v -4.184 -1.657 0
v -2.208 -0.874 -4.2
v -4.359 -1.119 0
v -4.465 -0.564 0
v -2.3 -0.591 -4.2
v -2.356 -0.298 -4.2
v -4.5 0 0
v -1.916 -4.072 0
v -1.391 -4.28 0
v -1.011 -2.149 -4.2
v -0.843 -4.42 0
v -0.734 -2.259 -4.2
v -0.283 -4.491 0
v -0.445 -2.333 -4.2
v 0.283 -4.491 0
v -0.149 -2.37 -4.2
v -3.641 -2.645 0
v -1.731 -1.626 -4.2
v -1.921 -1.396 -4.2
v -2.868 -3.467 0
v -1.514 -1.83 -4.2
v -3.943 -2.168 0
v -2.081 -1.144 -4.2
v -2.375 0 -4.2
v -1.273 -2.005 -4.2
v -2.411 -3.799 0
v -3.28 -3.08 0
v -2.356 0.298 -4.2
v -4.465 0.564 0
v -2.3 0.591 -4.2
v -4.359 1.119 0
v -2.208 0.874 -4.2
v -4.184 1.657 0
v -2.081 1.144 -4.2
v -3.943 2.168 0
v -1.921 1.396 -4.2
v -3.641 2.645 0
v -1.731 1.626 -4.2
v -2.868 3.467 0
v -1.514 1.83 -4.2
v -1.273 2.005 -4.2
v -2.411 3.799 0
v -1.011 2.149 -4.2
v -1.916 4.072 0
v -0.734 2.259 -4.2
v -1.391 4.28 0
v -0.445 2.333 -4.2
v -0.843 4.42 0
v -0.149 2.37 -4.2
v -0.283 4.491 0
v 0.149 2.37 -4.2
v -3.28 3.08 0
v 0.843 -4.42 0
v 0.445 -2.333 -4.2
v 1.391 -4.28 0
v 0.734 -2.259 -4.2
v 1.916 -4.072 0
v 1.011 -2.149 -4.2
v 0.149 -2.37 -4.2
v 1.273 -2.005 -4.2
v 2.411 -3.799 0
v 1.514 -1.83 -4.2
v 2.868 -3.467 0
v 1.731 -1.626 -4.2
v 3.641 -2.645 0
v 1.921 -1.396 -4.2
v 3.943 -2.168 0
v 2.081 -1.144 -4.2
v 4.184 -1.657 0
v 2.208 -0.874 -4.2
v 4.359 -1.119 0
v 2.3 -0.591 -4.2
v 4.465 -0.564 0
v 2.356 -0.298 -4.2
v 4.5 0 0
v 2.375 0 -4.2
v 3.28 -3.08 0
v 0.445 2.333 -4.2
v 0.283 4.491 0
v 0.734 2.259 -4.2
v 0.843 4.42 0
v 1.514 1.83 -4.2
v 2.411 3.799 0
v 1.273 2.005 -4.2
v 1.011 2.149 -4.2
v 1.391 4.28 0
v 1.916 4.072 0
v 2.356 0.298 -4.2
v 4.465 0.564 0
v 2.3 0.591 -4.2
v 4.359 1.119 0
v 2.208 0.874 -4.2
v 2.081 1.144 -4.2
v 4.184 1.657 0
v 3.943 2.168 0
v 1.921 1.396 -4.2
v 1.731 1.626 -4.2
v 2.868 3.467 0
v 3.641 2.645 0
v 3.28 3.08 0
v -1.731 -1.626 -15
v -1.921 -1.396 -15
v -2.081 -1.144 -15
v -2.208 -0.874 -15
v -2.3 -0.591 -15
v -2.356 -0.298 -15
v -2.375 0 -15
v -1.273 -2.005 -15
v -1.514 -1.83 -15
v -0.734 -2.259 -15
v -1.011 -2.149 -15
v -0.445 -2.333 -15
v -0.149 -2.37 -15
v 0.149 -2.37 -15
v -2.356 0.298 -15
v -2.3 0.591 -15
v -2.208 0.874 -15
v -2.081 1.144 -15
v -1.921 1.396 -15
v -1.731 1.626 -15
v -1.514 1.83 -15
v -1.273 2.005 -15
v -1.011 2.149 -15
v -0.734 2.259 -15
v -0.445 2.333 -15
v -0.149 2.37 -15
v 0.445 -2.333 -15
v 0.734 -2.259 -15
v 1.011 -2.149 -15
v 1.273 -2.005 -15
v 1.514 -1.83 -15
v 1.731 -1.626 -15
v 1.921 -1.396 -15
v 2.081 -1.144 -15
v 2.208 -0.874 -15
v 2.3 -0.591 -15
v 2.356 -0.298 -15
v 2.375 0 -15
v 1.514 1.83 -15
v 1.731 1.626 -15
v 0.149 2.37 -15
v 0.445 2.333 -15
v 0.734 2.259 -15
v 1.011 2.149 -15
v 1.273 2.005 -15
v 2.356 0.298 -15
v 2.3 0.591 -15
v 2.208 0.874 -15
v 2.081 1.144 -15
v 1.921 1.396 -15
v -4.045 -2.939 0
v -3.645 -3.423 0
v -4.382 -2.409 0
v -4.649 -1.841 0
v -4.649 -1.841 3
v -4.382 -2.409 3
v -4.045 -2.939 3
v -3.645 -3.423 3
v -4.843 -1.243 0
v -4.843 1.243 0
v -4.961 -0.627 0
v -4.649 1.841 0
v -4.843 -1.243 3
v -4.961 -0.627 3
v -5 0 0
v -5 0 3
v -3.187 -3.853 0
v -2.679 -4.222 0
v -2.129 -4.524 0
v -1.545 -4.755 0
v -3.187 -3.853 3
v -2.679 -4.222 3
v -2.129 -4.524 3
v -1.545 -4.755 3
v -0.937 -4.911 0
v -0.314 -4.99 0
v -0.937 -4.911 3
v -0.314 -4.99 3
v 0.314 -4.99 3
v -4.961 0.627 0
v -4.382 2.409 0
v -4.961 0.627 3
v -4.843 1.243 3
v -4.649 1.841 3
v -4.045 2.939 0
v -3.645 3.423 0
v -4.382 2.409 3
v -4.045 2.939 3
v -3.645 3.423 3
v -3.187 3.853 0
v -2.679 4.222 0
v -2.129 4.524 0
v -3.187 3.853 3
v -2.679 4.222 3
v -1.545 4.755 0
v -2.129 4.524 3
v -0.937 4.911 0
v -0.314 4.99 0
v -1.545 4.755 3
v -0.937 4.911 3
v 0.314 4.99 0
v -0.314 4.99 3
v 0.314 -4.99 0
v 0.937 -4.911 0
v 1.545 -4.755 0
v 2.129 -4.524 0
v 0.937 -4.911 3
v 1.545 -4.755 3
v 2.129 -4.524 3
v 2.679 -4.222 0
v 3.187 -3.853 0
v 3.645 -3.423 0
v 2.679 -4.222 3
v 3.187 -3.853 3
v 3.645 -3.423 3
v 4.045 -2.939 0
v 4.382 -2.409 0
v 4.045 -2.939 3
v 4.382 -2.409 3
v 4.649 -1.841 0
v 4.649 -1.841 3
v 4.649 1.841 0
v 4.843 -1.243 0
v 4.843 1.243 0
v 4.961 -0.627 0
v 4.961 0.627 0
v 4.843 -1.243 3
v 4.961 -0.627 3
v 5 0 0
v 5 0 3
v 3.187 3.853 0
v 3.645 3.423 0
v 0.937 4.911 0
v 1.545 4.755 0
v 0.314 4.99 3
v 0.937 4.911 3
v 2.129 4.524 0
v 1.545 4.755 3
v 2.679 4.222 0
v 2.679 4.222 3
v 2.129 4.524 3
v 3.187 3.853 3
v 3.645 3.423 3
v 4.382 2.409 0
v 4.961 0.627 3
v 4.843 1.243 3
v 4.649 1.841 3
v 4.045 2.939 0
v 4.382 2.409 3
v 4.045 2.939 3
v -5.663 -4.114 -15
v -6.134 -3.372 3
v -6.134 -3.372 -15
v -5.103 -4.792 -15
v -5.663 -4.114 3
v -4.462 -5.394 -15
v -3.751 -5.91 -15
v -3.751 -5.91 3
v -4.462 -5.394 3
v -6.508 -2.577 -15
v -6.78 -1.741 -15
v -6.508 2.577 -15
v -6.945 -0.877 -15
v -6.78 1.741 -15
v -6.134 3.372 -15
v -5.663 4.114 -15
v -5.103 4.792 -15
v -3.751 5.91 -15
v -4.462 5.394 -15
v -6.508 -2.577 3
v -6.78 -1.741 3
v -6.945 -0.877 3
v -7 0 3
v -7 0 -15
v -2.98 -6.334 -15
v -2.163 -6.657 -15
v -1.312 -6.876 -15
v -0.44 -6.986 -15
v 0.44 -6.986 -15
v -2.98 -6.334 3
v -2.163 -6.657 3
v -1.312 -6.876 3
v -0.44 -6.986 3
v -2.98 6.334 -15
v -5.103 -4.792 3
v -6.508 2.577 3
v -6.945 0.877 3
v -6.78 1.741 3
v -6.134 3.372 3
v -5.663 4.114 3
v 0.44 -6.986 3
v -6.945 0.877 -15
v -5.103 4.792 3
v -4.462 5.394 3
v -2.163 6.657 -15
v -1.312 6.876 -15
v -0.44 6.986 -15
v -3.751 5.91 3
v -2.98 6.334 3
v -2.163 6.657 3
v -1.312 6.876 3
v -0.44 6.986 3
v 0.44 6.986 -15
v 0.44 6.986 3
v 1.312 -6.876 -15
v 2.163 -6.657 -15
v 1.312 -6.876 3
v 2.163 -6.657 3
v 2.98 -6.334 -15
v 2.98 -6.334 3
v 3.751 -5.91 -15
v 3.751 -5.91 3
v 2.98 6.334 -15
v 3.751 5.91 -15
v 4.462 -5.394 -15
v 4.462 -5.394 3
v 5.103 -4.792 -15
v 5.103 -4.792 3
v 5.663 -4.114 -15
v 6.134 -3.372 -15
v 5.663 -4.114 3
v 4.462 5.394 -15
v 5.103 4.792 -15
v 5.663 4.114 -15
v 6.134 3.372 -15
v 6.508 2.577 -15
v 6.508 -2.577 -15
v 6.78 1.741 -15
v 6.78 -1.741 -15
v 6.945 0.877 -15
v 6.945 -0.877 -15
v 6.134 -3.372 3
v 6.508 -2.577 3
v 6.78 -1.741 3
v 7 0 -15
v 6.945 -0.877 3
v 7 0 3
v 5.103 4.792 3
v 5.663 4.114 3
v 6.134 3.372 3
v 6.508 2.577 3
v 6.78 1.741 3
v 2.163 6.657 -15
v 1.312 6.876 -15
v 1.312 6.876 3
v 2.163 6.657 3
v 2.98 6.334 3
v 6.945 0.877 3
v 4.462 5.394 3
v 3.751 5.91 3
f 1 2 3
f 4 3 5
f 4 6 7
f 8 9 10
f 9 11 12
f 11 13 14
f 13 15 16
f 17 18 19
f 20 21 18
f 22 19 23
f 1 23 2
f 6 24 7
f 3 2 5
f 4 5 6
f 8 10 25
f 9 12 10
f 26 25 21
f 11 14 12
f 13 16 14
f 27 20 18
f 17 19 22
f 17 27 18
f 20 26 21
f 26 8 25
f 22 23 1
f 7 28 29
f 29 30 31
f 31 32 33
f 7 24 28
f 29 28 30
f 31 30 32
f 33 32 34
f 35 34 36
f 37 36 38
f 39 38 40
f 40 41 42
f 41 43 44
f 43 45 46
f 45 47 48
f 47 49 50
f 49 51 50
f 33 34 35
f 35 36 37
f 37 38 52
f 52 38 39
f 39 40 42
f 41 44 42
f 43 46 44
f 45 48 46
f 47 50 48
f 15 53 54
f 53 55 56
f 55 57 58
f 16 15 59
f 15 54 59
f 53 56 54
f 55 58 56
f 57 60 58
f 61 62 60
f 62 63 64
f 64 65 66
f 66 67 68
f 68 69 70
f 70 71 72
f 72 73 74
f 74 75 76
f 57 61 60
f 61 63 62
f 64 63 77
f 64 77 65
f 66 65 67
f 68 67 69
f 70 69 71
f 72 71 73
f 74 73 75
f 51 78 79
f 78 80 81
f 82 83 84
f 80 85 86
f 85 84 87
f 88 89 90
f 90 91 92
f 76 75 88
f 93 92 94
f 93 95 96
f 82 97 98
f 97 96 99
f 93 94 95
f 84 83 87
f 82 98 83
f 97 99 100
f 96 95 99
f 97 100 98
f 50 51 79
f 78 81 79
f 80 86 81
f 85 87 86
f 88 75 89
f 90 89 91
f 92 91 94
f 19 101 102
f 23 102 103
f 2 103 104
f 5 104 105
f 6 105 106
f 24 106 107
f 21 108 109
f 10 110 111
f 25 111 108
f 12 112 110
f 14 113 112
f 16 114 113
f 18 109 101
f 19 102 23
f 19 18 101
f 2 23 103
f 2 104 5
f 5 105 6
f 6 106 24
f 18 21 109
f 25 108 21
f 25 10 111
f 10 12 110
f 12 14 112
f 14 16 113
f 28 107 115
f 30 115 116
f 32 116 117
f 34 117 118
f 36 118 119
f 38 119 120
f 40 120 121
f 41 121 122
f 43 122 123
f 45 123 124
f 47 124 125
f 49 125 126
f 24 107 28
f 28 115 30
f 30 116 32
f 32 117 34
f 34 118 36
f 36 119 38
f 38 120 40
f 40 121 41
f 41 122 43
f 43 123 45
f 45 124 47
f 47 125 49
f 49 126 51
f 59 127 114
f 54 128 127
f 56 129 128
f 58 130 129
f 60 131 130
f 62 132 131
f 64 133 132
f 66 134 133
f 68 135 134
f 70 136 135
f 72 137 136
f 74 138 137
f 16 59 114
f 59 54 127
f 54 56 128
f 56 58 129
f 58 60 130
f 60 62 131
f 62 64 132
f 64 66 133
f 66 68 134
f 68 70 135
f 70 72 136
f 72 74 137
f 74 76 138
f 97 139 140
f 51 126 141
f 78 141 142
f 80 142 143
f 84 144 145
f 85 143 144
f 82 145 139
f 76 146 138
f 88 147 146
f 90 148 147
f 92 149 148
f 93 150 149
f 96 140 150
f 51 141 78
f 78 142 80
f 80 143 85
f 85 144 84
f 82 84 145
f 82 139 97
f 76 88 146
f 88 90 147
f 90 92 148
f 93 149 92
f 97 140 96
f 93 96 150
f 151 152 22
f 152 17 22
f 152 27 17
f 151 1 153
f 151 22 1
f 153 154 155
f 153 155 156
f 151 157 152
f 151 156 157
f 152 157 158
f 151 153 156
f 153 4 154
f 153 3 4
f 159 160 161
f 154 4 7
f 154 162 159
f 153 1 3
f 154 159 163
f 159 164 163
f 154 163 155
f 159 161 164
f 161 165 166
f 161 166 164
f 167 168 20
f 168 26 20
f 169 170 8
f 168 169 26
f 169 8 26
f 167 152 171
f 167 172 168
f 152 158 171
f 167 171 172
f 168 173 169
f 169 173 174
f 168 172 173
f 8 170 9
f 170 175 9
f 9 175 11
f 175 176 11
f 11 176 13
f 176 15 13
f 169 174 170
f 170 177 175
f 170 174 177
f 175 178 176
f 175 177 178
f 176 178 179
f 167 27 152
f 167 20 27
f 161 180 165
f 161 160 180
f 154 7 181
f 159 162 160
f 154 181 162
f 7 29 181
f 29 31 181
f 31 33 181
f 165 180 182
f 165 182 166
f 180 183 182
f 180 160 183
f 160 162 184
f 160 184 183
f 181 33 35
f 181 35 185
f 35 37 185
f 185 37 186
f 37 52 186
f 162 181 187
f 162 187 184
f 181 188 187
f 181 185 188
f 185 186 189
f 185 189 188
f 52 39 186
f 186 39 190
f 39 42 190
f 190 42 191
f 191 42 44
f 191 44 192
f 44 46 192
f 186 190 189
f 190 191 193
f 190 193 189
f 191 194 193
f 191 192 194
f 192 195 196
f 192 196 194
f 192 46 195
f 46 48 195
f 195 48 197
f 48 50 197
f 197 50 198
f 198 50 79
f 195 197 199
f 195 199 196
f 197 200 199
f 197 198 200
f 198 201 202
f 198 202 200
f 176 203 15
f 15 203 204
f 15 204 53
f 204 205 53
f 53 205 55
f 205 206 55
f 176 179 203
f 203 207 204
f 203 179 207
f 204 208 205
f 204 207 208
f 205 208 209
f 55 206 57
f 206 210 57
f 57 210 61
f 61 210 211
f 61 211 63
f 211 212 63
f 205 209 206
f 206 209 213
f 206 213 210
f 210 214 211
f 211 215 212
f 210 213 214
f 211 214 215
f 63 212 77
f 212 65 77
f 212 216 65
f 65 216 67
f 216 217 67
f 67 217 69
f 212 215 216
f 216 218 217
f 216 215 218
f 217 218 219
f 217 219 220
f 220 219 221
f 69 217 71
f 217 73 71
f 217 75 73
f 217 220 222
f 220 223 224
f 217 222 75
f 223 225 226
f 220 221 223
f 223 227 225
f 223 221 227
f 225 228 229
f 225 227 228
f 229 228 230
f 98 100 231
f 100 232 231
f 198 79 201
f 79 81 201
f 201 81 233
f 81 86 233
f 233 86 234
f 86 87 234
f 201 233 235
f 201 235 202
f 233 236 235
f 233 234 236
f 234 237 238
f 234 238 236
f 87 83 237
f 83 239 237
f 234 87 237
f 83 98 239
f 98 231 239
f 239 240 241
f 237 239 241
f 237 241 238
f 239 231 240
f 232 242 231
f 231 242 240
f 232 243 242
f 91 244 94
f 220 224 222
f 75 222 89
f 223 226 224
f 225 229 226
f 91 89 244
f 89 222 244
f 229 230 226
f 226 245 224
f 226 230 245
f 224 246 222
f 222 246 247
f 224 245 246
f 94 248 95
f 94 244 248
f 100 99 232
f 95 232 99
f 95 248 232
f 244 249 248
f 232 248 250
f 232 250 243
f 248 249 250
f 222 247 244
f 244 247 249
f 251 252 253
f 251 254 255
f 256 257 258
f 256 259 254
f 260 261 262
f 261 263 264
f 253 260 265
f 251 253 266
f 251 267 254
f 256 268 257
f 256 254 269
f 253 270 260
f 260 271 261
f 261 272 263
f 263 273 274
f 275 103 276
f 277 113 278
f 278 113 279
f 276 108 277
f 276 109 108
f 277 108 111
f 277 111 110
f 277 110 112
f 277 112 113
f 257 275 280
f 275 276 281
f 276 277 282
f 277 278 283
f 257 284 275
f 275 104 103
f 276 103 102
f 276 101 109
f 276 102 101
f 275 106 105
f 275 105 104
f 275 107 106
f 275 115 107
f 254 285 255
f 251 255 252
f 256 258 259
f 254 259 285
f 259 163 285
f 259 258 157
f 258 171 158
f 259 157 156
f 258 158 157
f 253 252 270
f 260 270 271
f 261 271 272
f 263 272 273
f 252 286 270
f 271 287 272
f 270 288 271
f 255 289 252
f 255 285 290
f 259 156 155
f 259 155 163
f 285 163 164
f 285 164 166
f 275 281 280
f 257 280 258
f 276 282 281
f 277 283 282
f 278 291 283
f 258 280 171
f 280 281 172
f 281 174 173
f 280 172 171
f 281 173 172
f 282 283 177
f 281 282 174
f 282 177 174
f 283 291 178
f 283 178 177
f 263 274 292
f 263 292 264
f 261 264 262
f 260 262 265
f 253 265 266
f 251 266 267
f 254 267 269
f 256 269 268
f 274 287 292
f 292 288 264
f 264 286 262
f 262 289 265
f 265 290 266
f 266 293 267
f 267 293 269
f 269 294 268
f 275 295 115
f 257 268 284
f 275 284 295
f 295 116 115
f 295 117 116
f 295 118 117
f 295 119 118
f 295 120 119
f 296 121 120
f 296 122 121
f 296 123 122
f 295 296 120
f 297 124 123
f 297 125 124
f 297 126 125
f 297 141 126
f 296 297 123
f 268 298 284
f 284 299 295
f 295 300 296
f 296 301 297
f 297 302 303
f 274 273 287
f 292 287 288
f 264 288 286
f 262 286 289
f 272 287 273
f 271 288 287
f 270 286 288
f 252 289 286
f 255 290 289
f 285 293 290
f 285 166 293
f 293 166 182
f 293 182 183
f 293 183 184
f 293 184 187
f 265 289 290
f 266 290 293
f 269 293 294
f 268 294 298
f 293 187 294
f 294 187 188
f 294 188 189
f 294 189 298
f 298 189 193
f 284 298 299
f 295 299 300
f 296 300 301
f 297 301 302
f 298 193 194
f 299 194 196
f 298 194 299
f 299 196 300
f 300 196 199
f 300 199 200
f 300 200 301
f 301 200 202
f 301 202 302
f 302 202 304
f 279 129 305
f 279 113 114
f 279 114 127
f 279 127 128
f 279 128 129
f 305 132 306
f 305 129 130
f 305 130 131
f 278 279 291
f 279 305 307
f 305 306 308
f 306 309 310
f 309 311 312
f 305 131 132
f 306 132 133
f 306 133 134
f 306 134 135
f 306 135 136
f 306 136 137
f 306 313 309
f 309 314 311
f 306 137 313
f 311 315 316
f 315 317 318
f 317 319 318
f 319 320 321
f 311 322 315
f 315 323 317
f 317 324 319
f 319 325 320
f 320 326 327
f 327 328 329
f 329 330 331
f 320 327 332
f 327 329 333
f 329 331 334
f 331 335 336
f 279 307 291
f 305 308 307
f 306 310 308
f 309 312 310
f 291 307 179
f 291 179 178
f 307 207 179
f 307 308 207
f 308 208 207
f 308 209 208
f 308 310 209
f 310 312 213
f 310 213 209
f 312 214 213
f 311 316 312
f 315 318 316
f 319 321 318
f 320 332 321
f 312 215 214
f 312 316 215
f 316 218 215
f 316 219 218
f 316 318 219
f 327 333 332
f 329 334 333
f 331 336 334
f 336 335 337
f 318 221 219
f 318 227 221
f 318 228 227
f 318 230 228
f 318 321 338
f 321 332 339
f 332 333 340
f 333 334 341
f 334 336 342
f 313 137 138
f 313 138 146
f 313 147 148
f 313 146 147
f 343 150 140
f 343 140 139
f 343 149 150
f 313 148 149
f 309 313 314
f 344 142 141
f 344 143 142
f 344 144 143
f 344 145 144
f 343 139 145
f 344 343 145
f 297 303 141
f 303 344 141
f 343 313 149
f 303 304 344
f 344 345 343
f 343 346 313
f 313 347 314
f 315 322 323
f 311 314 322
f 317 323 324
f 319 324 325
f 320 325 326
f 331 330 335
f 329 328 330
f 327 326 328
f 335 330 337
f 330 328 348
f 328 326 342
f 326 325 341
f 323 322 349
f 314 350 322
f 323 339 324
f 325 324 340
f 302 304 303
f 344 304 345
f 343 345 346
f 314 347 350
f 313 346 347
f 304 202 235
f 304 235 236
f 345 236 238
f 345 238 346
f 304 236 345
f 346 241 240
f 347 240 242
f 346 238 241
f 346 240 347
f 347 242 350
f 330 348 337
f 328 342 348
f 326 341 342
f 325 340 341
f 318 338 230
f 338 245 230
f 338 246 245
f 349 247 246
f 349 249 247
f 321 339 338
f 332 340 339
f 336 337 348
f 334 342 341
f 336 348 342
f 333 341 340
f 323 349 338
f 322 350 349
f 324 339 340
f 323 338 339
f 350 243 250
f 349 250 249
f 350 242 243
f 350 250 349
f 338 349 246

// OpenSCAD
$fn = 50;


difference() {
	union() {
		translate(v = [0, 0, -15.0000000000]) {
			cylinder(h = 18, r = 7.0000000000);
		}
	}
	union() {
		translate(v = [0, 0, 0]) {
			rotate(a = [0, 0, 0]) {
				difference() {
					union() {
						translate(v = [0, 0, -18.0000000000]) {
							cylinder(h = 18, r = 2.2500000000);
						}
						translate(v = [0, 0, -4.2000000000]) {
							cylinder(h = 4.2000000000, r1 = 2.3750000000, r2 = 4.5000000000);
						}
						translate(v = [0, 0, -18.0000000000]) {
							cylinder(h = 18, r = 2.3750000000);
						}
						translate(v = [0, 0, -18.0000000000]) {
							cylinder(h = 18, r = 2.2500000000);
						}
					}
					union();
				}
			}
		}
		#cylinder(h = 3, r = 5.0000000000);
	}
}
